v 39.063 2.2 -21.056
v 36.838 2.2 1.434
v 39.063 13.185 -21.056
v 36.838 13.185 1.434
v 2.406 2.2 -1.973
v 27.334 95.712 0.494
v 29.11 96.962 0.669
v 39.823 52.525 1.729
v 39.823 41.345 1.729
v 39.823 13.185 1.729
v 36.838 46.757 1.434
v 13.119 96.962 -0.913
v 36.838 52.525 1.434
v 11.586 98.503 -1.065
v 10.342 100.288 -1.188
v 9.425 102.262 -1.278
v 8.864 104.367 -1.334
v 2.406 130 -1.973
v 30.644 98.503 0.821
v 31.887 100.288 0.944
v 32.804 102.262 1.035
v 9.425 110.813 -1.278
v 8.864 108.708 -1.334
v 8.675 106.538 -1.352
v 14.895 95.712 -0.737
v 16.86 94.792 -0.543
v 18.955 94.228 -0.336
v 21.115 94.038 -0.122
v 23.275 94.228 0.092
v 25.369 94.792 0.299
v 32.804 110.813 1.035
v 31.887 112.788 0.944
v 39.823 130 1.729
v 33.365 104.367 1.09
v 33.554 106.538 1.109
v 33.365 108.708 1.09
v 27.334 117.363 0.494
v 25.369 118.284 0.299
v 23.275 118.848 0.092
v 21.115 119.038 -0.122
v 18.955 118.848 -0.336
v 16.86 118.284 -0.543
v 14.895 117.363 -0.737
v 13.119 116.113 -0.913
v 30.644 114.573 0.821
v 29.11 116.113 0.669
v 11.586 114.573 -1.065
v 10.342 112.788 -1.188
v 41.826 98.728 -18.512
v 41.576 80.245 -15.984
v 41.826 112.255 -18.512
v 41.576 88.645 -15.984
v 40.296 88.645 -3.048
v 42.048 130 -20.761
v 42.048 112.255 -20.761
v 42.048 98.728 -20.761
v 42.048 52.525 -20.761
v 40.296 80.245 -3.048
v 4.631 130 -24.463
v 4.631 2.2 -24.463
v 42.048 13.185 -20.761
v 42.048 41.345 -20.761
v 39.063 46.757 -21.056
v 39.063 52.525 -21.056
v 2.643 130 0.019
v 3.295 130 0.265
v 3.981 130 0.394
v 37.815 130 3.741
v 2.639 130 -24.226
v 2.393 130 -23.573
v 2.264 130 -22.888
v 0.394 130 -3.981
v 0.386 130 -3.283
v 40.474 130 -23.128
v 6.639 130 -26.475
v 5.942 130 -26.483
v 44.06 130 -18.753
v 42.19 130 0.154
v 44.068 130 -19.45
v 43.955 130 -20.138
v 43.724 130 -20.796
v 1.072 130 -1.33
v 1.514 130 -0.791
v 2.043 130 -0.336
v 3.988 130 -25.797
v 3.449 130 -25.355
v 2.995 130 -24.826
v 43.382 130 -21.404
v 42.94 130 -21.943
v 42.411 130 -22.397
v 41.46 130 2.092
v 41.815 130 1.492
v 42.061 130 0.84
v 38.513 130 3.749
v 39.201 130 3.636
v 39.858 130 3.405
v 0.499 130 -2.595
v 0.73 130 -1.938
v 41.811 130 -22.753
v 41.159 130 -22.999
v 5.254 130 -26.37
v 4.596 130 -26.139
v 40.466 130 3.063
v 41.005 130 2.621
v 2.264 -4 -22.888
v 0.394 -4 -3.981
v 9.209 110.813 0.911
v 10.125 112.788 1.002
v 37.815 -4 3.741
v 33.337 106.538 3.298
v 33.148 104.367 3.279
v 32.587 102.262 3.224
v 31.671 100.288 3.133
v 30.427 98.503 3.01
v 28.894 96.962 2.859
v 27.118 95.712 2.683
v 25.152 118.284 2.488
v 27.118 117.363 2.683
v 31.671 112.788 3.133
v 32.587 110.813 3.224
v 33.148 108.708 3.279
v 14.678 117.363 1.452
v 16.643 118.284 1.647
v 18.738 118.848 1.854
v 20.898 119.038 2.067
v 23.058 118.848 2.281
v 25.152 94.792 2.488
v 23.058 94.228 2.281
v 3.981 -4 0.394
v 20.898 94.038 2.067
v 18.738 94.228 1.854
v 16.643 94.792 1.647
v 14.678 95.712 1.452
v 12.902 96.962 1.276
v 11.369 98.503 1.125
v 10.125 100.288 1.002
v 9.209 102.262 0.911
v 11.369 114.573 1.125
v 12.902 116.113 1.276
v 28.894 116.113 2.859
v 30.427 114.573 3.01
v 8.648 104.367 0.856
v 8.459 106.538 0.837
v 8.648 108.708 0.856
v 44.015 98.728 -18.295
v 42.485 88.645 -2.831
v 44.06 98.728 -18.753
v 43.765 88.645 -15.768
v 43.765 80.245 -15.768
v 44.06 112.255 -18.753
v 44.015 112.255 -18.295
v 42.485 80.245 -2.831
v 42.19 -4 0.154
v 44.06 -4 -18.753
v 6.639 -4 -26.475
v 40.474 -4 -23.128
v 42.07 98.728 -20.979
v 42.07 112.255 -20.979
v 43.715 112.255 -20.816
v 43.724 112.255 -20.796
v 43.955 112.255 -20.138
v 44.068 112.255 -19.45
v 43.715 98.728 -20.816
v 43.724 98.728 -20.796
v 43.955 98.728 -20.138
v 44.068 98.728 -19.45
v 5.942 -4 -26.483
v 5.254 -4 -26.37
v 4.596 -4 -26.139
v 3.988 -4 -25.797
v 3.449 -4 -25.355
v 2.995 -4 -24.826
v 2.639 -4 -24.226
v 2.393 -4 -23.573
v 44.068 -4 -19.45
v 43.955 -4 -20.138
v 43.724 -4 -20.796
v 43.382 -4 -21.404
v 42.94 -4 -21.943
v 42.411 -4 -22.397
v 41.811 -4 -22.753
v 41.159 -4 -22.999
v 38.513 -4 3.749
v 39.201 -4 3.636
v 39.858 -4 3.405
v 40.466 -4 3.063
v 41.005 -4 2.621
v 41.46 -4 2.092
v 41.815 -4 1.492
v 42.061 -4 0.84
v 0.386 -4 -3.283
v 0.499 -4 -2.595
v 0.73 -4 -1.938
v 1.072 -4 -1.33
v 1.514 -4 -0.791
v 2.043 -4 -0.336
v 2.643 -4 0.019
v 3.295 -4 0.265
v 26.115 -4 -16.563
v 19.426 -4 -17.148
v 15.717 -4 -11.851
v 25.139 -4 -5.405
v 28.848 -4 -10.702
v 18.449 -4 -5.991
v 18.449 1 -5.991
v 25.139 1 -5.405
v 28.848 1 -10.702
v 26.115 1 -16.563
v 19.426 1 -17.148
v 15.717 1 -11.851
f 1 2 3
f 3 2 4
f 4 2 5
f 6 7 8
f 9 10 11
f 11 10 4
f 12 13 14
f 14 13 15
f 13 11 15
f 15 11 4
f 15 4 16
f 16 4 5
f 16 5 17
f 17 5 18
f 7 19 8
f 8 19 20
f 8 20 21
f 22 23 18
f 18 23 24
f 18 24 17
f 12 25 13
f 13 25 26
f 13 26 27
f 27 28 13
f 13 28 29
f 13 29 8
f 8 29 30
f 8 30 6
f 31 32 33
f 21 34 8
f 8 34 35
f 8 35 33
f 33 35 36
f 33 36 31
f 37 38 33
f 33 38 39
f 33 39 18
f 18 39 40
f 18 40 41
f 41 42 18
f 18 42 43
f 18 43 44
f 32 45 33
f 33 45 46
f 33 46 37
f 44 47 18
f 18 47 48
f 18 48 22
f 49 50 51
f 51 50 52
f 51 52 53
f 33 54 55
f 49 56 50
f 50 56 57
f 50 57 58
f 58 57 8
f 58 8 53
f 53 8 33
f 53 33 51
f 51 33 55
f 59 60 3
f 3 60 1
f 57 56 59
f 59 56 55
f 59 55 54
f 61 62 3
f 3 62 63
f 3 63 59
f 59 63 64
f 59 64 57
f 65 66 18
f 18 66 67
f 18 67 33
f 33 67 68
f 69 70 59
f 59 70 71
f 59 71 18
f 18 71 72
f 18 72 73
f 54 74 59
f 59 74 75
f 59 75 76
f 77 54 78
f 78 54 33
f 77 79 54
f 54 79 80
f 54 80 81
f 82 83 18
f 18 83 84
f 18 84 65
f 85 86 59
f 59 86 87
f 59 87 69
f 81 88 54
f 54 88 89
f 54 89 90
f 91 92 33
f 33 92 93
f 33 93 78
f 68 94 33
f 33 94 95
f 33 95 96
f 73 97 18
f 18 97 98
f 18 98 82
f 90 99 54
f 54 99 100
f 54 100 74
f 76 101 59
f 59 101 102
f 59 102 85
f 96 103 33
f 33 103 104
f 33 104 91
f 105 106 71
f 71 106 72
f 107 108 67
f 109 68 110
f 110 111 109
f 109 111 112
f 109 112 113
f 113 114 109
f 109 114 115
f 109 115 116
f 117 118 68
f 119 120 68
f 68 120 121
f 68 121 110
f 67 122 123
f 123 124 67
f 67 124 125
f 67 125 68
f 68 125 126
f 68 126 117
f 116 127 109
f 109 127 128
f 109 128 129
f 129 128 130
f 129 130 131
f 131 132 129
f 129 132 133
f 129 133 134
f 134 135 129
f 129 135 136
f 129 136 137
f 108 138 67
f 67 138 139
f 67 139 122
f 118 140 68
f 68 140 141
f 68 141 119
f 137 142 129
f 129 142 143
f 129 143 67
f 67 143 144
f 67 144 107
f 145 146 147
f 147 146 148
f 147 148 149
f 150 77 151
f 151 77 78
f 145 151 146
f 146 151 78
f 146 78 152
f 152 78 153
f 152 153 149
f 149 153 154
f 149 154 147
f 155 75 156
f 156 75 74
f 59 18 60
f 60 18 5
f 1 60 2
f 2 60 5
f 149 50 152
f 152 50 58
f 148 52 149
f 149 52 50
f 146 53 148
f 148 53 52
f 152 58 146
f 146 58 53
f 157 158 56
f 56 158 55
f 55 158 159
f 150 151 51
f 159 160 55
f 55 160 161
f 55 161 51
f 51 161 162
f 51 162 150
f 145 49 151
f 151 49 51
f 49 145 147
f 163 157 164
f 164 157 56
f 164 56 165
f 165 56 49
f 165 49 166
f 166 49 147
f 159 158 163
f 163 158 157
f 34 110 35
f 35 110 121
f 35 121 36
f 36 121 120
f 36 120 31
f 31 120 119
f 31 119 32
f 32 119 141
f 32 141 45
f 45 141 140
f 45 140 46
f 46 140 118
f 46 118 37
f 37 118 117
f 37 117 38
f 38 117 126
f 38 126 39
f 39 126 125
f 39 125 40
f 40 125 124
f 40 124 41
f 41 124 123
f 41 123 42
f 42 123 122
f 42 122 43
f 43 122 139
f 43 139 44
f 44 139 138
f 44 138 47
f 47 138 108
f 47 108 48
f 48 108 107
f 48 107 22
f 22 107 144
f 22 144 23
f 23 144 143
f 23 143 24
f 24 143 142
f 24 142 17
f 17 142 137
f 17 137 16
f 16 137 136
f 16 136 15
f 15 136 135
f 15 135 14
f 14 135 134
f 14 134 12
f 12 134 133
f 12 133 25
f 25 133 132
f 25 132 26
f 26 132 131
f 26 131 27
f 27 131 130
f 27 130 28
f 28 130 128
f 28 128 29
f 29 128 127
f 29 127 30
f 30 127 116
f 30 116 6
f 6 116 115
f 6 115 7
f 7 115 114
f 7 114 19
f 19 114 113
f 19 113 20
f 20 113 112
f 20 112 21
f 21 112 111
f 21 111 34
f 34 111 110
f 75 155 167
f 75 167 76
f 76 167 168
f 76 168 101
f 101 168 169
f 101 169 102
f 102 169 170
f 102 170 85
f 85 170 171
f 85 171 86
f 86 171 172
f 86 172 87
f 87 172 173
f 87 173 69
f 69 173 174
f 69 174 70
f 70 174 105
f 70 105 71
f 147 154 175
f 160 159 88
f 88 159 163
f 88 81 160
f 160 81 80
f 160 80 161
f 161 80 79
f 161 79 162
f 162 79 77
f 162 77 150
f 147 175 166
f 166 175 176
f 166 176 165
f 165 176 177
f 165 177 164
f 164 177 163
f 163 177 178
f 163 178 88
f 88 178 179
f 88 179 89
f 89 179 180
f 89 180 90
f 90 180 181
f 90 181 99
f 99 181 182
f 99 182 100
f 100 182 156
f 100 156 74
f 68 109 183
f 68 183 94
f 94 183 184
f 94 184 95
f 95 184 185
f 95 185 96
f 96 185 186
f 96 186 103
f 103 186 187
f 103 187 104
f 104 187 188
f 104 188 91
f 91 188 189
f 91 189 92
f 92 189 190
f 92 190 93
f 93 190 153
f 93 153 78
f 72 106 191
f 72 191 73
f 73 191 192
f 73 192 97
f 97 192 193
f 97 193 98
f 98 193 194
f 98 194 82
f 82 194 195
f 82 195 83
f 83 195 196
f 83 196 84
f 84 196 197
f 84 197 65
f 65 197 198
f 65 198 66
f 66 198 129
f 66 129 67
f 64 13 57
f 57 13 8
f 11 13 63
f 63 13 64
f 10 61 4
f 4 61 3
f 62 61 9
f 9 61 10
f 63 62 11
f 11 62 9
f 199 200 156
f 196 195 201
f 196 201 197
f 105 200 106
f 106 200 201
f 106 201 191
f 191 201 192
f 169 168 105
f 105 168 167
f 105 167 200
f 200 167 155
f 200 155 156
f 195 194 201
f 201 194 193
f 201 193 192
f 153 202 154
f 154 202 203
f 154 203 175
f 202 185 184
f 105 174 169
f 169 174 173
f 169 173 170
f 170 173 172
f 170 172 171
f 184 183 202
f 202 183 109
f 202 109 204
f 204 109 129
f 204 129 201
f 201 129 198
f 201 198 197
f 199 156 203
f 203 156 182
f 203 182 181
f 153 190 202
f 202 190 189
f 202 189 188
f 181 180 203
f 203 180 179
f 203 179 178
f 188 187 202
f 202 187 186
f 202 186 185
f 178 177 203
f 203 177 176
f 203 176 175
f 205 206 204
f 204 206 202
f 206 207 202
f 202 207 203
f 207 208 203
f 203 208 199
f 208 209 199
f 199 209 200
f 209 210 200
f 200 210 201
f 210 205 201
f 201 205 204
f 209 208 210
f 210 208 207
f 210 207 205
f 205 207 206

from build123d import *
from build123d.topology import SkipClean

# Parameters (mm, degrees)
BOSS_EXTRUDE1_DEPTH = 130
SHELL1_T            = -2.2
SKETCH3_W           = 13
SKETCH3_H           = 8.4
CUT_EXTRUDE1_DEPTH  = 2.2
SKETCH6_W           = 2.478928052
SKETCH6_H           = 13.527023683
CUT_EXTRUDE2_DEPTH  = 2.2
SKETCH4_R           = 12.5
CUT_EXTRUDE3_DEPTH  = 2.2
FILLET1_R           = 4
SKETCH7_W           = 22.6
SKETCH7_H           = 50.325296996
BOSS_EXTRUDE2_DEPTH = 3
SKETCH8_W           = 22.6
SKETCH8_H           = 23.572157484
CUT_EXTRUDE4_DEPTH  = 3
CHAMFER1_SIZE       = 10
CHAMFER1_SIZE_2     = 5.543090515
BOSS_EXTRUDE3_START = 4
BOSS_EXTRUDE3_DEPTH = 4
CUT_EXTRUDE5_DEPTH  = 5


with BuildPart() as part:
    # Sketch1 → Boss-Extrude1 (new body)
    with BuildSketch(Plane(origin=(0, 0, 0), x_dir=(1, 0, 0), z_dir=(0, 1, 0))):
        Polygon((0, 0), (41.795955874, -4.134981567), (44.45415831, 22.733847209), (2.658202436, 26.868828776), align=None)
    extrude(amount=BOSS_EXTRUDE1_DEPTH)

    # Shell1
    shell1_openings = [part.faces().sort_by_distance(p)[0] for p in [
        (22.227079155, 130, -11.366923605),
    ]]
    offset(amount=SHELL1_T, openings=shell1_openings, kind=Kind.INTERSECTION)

    # Sketch3 → Cut-Extrude1 (cut)
    with BuildSketch(Plane(origin=(41.795955874, 0, 4.134981567), x_dir=(0.09845194207530276, 0, -0.9951418065288994), z_dir=(0.9951418065288994, 0, 0.09845194207530276))):
        with Locations((13.5, 84.444630111)):
            Rectangle(SKETCH3_W, SKETCH3_H)
    extrude(amount=-CUT_EXTRUDE1_DEPTH, mode=Mode.SUBTRACT)

    # Sketch6 → Cut-Extrude2 (cut)
    with BuildSketch(Plane(origin=(41.795955874, 0, 4.134981567), x_dir=(0.09845194207530188, 0, -0.9951418065288994), z_dir=(0.9951418065288995, 0, 0.09845194207530189))):
        with Locations((23.779140081, 105.491766173)):
            Rectangle(SKETCH6_W, SKETCH6_H)
    extrude(amount=-CUT_EXTRUDE2_DEPTH, mode=Mode.SUBTRACT)

    # Sketch4 → Cut-Extrude3 (cut)
    with BuildSketch(Plane(origin=(0, 0, 0), x_dir=(0.9951418065288994, 0, 0.0984519420753021), z_dir=(-0.09845194207530208, 0, 0.9951418065288993))):
        with Locations((21, 106.537728643)):
            Circle(SKETCH4_R)
    extrude(amount=-CUT_EXTRUDE3_DEPTH, mode=Mode.SUBTRACT)

    # Fillet1
    # the kernel refuses this fillet: 4 mm, written as the material it takes off along each edge
    with BuildSketch(Plane(origin=(2.658202436, -10, -26.868828776), x_dir=(-0.0984519420753019, 0, 0.9951418065288995), z_dir=(0, 1, 0)), Plane(origin=(0, -10, 0), x_dir=(0.9951418065288994, 0, 0.09845194207530183), z_dir=(0, 1, 0))) as fillet1_piece_1:
        with BuildLine():
            CenterArc((FILLET1_R, FILLET1_R), FILLET1_R, 180, 90)
            Line((0, FILLET1_R), (0, 0))
            Line((0, 0), (FILLET1_R, 0))
        make_face()
    extrude(amount=150, mode=Mode.SUBTRACT)
    with BuildSketch(Plane(origin=(44.45415831, -10, -22.733847209), x_dir=(-0.09845194207530218, 0, 0.9951418065288994), z_dir=(0, 1, 0)), Plane(origin=(41.795955874, -10, 4.134981567), x_dir=(-0.9951418065288994, 0, -0.09845194207530182), z_dir=(0, 1, 0))) as fillet1_piece_2:
        with BuildLine():
            CenterArc((FILLET1_R, -FILLET1_R), FILLET1_R, 90, 90)
            Line((0, -FILLET1_R), (0, 0))
            Line((0, 0), (FILLET1_R, 0))
        make_face()
    extrude(amount=150, mode=Mode.SUBTRACT)

    # Sketch7 → Boss-Extrude2 (add)
    with BuildSketch(Plane(origin=(39.6066439, 0, 3.918387295), x_dir=(-0.09845194207530197, 0, 0.9951418065288994), z_dir=(-0.9951418065288995, 0, -0.09845194207530199))):
        with Locations((-13.5, 27.362648498)):
            Rectangle(SKETCH7_W, SKETCH7_H)
    extrude(amount=BOSS_EXTRUDE2_DEPTH)

    # Sketch8 → Cut-Extrude4 (cut)
    with BuildSketch(Plane(origin=(36.62121848, 0, 3.623031468), x_dir=(-0.09845194207530192, 0, 0.9951418065288994), z_dir=(-0.9951418065288995, 0, -0.09845194207530193))):
        with Locations((-13.5, 24.971356382)):
            Rectangle(SKETCH8_W, SKETCH8_H)
    extrude(amount=-CUT_EXTRUDE4_DEPTH, mode=Mode.SUBTRACT)

    # Chamfer1
    # the kernel refuses this chamfer: 10, 5.543090515 mm, written as the material it takes off along each edge
    with BuildSketch(Plane(origin=(36.837812753, 36.757435124, 1.433719494), x_dir=(-0.018642579535210594, 0.9998245108869491, -0.0018443584105231356), z_dir=(0.09845194207530193, 0, -0.9951418065288995))) as chamfer1_piece_1_section:
        Polygon((CHAMFER1_SIZE * 0.999824510887, CHAMFER1_SIZE * 0.0187335909444), (-CHAMFER1_SIZE_2 * 0.0187335909428, CHAMFER1_SIZE_2 * 0.999824510802), (0, 0), align=None)
    chamfer1_piece_1 = extrude(amount=22.6, mode=Mode.PRIVATE)
    chamfer1_piece_1 = split(chamfer1_piece_1, bisect_by=Plane(origin=(40.104235357, 40.578335675, -1.111214466), z_dir=(-0.9951418065288995, 0, -0.09845194207530193)), keep=Keep.TOP, mode=Mode.PRIVATE)
    add(chamfer1_piece_1, mode=Mode.SUBTRACT)

    # Sketch9 → Boss-Extrude3 (add)
    with BuildSketch(Plane.XZ.offset(BOSS_EXTRUDE3_START)):
        with BuildLine():
            Line((6.638769662, -26.475021008), (40.473591084, -23.127654977))
            ThreePointArc((40.473591084, -23.127654977), (43.172933538, -21.683309686), (44.060350542, -18.753279983))
            Line((44.060350542, -18.753279983), (42.189763643, 0.154414341))
            ThreePointArc((42.189763643, 0.154414341), (40.745418352, 2.853756795), (37.815388648, 3.741173799))
            Line((37.815388648, 3.741173799), (3.980567226, 0.393807768))
            ThreePointArc((3.980567226, 0.393807768), (1.281224772, -1.050537523), (0.393807768, -3.980567226))
            Line((0.393807768, -3.980567226), (2.264394668, -22.88826155))
            ThreePointArc((2.264394668, -22.88826155), (3.708739959, -25.587604004), (6.638769662, -26.475021008))
        make_face()
    extrude(amount=-BOSS_EXTRUDE3_DEPTH)

    # Sketch11 → Cut-Extrude5 (cut)
    with SkipClean():  # the faces are left unmerged after this step: merging them gives an invalid solid
        with BuildSketch(Plane.XZ.offset(4)):
            Polygon((26.115143368, -16.562744329), (28.84792956, -10.702265428), (25.13899905, -5.405363713), (21.794217599, -5.697994172), (18.449436148, -5.990624631), (15.716649956, -11.851103531), (19.425580466, -17.148005247), (22.770361917, -16.855374788), align=None)
        extrude(amount=-CUT_EXTRUDE5_DEPTH, mode=Mode.SUBTRACT)


solid = part.part
